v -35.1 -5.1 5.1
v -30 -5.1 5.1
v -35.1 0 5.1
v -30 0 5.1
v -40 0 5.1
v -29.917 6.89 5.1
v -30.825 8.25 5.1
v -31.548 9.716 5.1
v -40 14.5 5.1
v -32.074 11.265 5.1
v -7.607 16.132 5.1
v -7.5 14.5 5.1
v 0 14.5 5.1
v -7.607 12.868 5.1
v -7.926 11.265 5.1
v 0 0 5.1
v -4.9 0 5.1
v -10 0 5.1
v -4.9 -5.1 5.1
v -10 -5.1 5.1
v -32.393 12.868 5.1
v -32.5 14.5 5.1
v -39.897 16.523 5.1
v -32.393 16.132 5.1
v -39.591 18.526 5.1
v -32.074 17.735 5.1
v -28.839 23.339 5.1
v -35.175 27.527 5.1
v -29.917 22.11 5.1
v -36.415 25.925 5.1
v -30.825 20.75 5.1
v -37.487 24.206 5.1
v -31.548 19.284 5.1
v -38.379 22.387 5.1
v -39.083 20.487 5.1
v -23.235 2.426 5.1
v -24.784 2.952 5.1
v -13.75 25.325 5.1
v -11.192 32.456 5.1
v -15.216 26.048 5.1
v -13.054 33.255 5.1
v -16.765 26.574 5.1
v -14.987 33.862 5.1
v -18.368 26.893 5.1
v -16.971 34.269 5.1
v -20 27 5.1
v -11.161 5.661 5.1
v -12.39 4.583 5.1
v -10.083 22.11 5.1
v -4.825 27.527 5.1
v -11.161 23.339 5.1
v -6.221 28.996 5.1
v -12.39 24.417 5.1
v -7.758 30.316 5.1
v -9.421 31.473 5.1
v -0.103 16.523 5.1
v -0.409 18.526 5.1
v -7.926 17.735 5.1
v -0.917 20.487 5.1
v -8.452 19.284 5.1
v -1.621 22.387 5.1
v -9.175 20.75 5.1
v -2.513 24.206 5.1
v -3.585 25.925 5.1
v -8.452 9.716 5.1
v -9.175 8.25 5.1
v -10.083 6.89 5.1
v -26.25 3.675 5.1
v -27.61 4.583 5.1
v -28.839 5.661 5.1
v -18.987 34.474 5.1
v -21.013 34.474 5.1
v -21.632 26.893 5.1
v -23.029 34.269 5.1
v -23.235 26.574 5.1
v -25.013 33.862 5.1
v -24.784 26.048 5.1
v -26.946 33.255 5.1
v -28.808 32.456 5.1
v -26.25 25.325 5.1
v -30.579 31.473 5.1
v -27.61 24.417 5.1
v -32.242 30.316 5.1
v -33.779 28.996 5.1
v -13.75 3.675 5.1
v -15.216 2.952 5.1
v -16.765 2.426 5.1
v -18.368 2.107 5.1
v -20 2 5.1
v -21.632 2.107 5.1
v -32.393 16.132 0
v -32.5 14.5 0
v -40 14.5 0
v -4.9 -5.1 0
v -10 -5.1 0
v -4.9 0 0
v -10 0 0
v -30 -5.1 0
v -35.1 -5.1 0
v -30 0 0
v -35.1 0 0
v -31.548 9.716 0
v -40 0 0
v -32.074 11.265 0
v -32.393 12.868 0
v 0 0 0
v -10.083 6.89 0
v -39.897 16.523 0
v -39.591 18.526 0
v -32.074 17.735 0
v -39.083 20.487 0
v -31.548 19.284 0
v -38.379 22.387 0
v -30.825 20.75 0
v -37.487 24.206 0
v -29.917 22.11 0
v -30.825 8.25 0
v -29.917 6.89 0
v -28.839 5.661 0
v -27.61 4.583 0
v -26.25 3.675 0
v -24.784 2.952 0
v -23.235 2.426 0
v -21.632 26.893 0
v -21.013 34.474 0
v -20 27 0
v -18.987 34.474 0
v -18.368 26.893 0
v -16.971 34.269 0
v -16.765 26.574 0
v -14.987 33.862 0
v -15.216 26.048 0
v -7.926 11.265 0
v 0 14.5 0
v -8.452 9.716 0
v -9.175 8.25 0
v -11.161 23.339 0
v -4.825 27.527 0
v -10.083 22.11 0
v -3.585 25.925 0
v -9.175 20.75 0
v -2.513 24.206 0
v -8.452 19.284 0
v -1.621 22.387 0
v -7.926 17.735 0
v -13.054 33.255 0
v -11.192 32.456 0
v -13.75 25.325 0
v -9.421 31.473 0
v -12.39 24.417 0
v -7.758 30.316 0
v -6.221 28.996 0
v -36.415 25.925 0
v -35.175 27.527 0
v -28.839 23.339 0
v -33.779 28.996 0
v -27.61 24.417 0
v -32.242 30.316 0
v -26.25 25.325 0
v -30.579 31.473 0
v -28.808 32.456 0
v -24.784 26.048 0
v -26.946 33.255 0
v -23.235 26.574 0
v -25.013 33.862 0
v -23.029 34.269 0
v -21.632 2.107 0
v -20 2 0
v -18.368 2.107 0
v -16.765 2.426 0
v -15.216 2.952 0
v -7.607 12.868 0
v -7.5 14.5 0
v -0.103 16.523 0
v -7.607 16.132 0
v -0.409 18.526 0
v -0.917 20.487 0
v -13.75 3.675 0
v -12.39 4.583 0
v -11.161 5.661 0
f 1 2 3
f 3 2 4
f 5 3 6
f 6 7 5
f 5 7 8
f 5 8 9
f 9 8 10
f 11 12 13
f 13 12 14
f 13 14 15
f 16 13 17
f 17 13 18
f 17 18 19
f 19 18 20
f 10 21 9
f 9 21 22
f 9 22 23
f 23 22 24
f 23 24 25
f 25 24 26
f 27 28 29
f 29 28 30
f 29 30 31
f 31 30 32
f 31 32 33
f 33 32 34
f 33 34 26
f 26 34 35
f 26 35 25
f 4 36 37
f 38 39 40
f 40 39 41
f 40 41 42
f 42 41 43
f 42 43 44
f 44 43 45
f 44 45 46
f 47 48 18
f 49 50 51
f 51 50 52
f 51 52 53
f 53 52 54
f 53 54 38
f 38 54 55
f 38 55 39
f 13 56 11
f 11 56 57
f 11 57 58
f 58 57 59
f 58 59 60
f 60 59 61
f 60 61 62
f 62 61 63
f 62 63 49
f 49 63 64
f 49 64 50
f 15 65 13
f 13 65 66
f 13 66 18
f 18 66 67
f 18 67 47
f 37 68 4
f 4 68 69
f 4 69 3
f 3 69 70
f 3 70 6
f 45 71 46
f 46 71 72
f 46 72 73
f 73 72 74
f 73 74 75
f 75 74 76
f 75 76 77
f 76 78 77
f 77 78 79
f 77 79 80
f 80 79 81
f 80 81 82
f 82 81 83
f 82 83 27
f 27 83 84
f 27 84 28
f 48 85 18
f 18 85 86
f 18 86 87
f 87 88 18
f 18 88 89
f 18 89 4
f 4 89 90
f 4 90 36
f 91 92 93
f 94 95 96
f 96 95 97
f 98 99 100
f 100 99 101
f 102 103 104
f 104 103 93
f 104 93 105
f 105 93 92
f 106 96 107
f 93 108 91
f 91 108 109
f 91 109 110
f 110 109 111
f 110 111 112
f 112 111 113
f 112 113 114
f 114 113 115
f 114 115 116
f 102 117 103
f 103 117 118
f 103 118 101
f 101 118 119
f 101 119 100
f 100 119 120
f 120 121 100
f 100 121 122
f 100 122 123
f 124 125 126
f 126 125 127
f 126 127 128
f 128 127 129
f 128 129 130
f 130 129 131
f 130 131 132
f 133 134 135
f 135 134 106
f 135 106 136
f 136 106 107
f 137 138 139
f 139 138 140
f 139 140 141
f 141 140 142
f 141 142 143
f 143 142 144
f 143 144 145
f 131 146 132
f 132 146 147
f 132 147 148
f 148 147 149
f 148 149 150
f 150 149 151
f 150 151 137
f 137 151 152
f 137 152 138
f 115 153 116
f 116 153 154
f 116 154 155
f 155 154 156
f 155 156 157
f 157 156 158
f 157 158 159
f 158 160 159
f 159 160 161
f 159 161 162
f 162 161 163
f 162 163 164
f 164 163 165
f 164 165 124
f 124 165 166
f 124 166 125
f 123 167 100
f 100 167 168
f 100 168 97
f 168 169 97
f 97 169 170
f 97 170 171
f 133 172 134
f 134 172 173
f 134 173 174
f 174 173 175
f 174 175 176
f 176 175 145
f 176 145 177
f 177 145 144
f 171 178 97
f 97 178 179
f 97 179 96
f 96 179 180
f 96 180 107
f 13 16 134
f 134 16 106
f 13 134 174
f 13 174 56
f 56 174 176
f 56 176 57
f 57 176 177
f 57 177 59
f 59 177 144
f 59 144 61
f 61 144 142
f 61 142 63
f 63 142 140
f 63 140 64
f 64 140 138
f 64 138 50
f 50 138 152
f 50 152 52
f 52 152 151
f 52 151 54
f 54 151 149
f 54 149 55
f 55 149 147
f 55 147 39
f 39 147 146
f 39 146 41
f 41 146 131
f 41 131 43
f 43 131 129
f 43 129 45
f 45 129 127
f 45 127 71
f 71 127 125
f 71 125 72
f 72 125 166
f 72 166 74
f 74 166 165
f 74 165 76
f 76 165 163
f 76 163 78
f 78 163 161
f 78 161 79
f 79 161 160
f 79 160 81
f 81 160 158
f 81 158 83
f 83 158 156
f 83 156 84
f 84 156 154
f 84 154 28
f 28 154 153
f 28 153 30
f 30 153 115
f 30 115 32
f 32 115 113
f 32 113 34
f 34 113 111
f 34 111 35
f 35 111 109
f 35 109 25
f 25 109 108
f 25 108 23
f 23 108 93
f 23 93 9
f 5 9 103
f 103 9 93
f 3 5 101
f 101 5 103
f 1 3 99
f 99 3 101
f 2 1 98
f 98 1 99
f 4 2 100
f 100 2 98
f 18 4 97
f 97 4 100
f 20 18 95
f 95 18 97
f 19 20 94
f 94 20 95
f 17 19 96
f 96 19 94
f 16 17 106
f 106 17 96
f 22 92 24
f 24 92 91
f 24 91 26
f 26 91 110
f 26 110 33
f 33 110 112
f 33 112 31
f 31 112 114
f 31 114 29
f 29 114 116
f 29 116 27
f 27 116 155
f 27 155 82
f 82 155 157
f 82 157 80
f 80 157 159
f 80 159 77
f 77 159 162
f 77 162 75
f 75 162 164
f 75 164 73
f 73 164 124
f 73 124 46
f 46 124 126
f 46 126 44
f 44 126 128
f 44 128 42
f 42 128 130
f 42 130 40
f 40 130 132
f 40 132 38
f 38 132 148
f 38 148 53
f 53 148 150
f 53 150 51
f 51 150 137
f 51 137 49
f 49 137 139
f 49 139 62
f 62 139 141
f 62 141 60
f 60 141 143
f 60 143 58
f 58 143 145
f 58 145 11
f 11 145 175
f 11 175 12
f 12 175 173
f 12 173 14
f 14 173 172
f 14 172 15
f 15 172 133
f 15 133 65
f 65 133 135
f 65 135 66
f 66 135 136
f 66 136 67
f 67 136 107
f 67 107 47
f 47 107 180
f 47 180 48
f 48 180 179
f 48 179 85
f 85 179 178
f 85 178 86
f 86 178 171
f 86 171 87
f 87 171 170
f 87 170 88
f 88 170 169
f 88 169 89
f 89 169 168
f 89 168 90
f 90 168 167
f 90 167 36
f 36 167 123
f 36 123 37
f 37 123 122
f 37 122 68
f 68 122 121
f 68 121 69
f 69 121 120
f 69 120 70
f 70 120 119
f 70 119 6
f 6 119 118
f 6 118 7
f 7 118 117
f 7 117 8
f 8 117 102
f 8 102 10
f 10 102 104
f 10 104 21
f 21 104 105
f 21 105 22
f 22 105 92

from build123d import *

# Parameters (mm, degrees)
SKETCH1_R           = 12.5
BOSS_EXTRUDE1_DEPTH = 5.1


with BuildPart() as part:
    # Sketch1 → Boss-Extrude1 (new body)
    with BuildSketch(Plane.XY):
        with BuildLine():
            Line((0, 0), (-4.9, 0))
            Line((-4.9, 0), (-4.9, -5.1))
            Line((-4.9, -5.1), (-10, -5.1))
            Line((-10, -5.1), (-10, 0))
            Line((-10, 0), (-30, 0))
            Line((-30, 0), (-30, -5.1))
            Line((-30, -5.1), (-35.1, -5.1))
            Line((-35.1, -5.1), (-35.1, 0))
            Line((-35.1, 0), (-40, 0))
            Line((-40, 0), (-40, 14.5))
            ThreePointArc((-40, 14.5), (-20, 34.5), (0, 14.5))
            Line((0, 14.5), (0, 0))
        make_face()
        with Locations((-20, 14.5)):
            Circle(SKETCH1_R, mode=Mode.SUBTRACT)
    extrude(amount=BOSS_EXTRUDE1_DEPTH)


solid = part.part
